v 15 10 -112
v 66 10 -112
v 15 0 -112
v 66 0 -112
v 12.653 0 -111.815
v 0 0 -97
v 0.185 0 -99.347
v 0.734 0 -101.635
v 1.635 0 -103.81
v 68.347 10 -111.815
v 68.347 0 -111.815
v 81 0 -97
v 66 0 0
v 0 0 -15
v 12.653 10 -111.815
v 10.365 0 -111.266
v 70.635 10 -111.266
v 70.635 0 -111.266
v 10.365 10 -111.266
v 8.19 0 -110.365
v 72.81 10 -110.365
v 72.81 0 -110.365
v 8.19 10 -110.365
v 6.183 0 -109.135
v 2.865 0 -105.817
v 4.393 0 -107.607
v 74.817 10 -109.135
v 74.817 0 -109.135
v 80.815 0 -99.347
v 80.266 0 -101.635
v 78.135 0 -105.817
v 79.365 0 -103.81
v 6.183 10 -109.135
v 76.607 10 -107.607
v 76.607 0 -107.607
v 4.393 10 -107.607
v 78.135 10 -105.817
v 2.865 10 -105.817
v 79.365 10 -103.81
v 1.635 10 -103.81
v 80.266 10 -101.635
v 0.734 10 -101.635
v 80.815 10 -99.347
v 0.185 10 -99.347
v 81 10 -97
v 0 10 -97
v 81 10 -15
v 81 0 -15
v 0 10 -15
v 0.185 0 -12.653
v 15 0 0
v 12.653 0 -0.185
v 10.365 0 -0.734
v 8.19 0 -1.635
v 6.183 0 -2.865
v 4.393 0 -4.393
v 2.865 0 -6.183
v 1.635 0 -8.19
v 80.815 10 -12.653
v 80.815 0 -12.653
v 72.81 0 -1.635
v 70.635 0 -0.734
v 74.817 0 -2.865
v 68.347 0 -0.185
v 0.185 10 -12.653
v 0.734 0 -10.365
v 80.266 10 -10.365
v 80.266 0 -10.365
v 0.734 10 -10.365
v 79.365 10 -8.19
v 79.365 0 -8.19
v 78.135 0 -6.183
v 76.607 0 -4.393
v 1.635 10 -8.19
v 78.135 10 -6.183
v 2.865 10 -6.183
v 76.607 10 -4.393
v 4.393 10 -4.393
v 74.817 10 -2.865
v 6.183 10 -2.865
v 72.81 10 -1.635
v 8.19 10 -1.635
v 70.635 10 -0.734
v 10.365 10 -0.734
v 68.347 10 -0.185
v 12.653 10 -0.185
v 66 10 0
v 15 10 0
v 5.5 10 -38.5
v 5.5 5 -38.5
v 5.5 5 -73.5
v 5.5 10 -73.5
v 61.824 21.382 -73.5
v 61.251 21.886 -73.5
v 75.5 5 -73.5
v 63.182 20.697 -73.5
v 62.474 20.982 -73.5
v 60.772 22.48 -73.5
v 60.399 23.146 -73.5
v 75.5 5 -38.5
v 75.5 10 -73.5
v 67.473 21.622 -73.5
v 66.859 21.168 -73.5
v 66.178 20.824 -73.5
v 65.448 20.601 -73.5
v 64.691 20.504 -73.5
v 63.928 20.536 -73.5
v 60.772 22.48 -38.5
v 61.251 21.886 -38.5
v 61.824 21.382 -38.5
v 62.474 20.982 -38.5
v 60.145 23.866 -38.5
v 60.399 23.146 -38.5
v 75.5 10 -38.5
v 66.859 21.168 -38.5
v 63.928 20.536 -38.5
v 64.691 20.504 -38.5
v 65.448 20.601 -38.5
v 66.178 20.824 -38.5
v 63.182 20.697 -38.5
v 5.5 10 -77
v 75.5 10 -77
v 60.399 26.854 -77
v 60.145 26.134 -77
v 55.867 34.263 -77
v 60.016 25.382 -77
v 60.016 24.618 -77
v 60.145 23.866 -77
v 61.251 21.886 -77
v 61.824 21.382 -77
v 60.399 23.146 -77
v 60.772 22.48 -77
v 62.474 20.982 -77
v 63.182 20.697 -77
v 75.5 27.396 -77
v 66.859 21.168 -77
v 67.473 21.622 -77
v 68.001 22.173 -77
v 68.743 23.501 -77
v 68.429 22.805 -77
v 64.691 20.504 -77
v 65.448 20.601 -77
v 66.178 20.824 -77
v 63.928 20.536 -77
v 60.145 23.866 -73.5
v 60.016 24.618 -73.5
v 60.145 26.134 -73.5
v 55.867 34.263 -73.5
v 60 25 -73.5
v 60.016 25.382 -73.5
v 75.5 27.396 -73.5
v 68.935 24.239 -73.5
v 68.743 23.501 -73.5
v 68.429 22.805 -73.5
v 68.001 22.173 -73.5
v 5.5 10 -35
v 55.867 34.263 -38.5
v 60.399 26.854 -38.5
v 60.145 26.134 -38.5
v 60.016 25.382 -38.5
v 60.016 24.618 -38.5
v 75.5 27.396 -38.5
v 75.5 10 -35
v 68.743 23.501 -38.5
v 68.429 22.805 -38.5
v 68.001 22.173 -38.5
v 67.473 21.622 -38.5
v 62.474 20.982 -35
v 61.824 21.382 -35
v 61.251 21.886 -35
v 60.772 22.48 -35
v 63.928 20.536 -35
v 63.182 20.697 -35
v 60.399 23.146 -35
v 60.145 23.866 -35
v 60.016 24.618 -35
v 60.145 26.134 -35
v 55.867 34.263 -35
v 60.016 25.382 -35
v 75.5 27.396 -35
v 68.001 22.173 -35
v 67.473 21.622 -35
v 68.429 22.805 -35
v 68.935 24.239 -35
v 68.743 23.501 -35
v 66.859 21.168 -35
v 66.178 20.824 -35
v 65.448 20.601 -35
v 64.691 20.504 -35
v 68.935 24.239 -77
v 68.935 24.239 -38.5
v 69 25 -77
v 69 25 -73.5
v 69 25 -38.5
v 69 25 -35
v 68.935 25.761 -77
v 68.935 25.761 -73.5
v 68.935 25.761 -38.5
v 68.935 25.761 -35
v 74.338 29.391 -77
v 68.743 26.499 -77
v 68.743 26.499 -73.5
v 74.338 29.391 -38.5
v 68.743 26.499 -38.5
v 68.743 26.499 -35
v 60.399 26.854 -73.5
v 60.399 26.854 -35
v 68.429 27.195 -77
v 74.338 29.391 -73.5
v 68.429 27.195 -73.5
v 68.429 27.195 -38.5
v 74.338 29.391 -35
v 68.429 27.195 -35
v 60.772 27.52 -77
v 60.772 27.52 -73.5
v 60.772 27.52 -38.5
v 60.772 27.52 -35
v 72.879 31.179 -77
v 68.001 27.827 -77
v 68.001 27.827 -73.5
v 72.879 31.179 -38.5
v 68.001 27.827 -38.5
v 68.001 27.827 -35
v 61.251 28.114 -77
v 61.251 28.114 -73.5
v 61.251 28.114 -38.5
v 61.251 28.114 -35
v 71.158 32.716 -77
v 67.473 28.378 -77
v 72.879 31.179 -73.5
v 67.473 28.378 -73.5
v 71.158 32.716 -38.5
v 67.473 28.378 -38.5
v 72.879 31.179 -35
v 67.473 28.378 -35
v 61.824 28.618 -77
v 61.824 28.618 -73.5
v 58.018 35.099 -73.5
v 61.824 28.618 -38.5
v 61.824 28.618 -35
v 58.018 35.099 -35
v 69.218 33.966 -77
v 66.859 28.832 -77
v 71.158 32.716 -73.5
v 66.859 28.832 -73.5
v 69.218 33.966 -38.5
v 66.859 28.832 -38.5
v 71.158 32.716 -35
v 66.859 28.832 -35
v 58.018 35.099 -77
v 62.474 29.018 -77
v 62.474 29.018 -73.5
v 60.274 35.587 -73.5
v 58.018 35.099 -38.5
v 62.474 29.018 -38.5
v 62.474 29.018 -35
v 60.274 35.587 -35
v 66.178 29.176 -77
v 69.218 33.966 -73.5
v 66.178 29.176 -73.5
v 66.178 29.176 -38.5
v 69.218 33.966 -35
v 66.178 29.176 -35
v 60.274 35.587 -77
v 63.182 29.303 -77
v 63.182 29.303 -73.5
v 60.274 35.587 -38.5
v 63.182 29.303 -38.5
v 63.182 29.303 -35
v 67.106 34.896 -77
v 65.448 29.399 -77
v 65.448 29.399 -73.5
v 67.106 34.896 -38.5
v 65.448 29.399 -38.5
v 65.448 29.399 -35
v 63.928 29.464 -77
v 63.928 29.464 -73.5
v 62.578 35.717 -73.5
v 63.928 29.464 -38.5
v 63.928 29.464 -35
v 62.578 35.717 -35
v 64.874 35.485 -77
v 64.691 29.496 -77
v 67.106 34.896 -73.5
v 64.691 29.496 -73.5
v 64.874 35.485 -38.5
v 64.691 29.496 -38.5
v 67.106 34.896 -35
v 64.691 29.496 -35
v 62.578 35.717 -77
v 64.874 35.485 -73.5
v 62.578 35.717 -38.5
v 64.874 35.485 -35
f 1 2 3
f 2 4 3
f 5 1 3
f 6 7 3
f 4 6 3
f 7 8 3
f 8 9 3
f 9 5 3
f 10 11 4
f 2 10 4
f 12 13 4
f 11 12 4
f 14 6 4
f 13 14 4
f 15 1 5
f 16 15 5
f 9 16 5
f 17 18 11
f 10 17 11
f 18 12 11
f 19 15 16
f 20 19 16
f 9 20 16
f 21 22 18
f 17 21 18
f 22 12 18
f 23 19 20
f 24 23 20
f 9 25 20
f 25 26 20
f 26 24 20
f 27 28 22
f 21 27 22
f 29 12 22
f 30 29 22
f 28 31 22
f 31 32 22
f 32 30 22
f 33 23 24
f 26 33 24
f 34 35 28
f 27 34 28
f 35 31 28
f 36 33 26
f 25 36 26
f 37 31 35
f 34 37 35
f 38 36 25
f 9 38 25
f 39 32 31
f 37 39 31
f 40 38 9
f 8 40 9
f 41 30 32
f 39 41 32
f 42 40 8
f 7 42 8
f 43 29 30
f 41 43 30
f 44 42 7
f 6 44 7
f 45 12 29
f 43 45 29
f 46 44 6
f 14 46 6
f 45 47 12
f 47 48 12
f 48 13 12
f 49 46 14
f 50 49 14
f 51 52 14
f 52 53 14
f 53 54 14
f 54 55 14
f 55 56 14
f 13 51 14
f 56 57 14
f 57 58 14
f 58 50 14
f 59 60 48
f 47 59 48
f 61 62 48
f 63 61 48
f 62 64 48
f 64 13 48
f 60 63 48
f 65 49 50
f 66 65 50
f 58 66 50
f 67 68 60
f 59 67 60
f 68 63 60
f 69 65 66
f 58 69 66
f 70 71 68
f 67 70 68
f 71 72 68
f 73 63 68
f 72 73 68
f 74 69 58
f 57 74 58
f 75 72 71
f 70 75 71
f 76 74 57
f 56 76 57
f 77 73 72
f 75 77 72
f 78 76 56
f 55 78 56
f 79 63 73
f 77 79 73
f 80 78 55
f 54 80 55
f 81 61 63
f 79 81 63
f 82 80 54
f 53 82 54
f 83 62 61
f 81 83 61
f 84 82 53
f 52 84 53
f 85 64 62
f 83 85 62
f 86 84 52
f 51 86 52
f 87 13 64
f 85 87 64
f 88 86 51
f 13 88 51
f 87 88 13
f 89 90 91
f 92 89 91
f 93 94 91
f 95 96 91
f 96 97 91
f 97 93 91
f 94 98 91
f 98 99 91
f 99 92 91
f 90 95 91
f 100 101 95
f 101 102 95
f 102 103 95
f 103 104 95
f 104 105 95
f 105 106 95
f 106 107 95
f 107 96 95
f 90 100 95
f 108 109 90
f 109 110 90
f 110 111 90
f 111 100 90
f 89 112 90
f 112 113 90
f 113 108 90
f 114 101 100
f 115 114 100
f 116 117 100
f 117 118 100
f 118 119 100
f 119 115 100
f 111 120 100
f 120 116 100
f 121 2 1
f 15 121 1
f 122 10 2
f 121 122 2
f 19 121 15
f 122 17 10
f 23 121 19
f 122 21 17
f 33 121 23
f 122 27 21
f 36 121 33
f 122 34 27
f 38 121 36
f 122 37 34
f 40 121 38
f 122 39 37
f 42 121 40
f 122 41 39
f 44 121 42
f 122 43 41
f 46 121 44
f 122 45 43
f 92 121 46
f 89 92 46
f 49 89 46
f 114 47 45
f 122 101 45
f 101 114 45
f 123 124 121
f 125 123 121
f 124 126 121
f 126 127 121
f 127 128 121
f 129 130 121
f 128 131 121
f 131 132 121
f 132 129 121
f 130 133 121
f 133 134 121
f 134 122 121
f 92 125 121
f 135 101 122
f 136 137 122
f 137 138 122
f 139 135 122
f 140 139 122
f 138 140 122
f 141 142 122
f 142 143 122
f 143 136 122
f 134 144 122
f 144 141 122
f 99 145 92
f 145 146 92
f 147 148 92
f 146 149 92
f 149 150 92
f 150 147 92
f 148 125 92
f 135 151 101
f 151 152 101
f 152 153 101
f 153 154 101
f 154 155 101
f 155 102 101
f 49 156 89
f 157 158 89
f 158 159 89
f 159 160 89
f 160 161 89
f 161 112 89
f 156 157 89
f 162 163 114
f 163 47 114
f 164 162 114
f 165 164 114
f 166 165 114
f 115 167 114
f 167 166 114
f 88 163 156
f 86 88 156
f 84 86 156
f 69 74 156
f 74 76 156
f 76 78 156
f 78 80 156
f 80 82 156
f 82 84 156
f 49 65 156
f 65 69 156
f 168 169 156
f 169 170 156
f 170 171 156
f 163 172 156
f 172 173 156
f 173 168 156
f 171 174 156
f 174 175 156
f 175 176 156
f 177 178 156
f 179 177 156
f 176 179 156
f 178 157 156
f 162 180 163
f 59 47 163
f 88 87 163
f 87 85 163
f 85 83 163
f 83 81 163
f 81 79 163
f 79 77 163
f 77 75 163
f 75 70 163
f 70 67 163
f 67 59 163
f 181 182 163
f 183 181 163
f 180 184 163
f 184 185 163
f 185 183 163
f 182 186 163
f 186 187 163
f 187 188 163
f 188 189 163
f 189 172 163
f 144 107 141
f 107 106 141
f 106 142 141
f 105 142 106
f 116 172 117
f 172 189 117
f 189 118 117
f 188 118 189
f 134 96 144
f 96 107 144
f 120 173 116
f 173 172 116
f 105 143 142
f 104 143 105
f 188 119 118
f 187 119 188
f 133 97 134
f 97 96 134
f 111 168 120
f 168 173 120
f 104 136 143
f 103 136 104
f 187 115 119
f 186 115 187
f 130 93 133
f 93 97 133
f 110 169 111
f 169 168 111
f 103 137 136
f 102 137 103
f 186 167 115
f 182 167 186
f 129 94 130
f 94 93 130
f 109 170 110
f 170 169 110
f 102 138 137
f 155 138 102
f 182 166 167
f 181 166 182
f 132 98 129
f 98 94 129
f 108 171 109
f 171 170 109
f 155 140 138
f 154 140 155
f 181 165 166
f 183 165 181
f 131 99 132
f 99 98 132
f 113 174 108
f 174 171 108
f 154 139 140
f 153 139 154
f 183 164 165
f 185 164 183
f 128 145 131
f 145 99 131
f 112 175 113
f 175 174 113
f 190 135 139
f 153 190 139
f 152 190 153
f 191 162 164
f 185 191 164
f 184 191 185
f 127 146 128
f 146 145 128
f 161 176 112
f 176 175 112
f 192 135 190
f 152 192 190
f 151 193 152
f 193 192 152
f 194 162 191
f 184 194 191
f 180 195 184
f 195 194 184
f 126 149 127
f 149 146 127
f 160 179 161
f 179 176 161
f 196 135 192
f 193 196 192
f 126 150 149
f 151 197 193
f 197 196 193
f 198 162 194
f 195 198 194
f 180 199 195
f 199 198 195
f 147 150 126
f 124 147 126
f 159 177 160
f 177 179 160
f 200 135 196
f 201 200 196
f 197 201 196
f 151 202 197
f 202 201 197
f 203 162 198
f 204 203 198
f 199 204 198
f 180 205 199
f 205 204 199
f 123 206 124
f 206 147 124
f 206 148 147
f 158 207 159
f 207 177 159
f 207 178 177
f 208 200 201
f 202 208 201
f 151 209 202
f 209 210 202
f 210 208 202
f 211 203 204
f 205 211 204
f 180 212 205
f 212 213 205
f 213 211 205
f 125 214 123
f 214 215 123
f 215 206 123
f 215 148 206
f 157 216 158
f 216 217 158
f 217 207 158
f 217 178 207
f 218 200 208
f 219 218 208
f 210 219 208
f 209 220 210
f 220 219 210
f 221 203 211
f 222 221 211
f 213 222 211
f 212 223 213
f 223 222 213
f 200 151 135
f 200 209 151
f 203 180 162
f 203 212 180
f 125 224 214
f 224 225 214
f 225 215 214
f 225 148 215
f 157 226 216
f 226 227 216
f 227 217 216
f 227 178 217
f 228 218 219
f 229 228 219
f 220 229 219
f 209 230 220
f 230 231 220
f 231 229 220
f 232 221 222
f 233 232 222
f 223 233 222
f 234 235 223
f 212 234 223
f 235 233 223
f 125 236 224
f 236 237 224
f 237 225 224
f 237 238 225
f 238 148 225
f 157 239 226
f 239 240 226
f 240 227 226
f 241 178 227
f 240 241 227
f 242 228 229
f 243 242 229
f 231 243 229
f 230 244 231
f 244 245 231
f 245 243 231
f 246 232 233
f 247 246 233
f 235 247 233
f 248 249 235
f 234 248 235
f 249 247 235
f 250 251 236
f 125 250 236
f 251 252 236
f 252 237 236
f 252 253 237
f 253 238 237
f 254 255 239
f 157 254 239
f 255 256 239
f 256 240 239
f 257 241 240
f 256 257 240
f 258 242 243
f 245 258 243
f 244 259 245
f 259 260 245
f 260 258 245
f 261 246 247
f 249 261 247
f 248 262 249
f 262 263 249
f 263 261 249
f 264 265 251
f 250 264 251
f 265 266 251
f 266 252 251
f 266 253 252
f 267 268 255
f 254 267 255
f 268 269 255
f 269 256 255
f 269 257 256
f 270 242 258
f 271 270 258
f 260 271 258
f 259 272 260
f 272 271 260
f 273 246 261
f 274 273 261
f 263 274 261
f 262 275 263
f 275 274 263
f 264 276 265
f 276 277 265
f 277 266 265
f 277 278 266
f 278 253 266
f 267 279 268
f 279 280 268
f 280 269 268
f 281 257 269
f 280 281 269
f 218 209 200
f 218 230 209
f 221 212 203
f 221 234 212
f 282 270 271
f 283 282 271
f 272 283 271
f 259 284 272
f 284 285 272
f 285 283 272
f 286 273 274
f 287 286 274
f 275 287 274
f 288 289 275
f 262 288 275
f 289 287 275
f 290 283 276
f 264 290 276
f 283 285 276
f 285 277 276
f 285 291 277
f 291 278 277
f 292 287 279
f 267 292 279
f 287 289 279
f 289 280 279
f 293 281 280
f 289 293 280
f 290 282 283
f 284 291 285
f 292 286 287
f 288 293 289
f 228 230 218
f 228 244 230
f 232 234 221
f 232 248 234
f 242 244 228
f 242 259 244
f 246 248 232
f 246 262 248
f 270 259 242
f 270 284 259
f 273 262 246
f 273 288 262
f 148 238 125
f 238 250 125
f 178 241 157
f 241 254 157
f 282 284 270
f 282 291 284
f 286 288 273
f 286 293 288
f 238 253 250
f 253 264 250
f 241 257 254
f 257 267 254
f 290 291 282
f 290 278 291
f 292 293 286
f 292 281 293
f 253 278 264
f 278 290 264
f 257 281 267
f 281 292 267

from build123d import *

# Parameters (mm, degrees)
EXTRUDE_1_DEPTH     = 10
SKETCH_2_W          = 70
SKETCH_2_H          = 42
EXTRUDE_2_DEPTH     = 27
SKETCH_3_W          = 70
SKETCH_3_H          = 35
CUT_EXTRUDE_1_DEPTH = 32
SKETCH_4_R          = 4.5
CUT_EXTRUDE_2_DEPTH = 118.724254086


with BuildPart() as part:
    # Sketch 150 → 凸台-拉伸1 (new body)
    with BuildSketch(Plane(origin=(0, 0, 0), x_dir=(1, 0, 0), z_dir=(0, 1, 0))):
        with BuildLine():
            Line((15, 0), (66, 0))
            ThreePointArc((66, 0), (76.606601718, 4.393398282), (81, 15))
            Line((81, 15), (81, 97))
            ThreePointArc((81, 97), (76.606601718, 107.606601718), (66, 112))
            Line((66, 112), (15, 112))
            ThreePointArc((15, 112), (4.393398282, 107.606601718), (0, 97))
            Line((0, 97), (0, 15))
            ThreePointArc((0, 15), (4.393398282, 4.393398282), (15, 0))
        make_face()
    extrude(amount=EXTRUDE_1_DEPTH)

    # 草图2 → 凸台-拉伸2 (add)
    with BuildSketch(Plane(origin=(0, 10, 0), x_dir=(1, 0, 0), z_dir=(0, 1, 0))):
        with Locations((40.5, 56)):
            Rectangle(SKETCH_2_W, SKETCH_2_H)
    extrude(amount=EXTRUDE_2_DEPTH)

    # 草图3 → 切除-拉伸1 (cut)
    with BuildSketch(Plane(origin=(0, 37, 0), x_dir=(1, 0, 0), z_dir=(0, 1, 0))):
        with Locations((40.5, 56)):
            Rectangle(SKETCH_3_W, SKETCH_3_H)
    extrude(amount=-CUT_EXTRUDE_1_DEPTH, mode=Mode.SUBTRACT)

    # 草图4 → 切除-拉伸2 (cut, through all)
    with BuildSketch(Plane.XY.offset(-35)):
        with Locations((64.5, 25)):
            Circle(SKETCH_4_R)
        with BuildLine():
            Line((5.5, 10), (2.465175939, 10))
            Line((2.465175939, 10), (2.465175939, 42.34627873))
            Line((2.465175939, 42.34627873), (79.036091511, 42.34627873))
            Line((79.036091511, 42.34627873), (79.036091511, 27.396377445))
            Line((79.036091511, 27.396377445), (75.5, 27.396377445))
            ThreePointArc((75.5, 27.396377445), (67.105558918, 34.896122118), (55.866672389, 34.26347622))
            Line((55.866672389, 34.26347622), (5.5, 10))
        make_face()
    extrude(amount=-CUT_EXTRUDE_2_DEPTH, mode=Mode.SUBTRACT)


solid = part.part
